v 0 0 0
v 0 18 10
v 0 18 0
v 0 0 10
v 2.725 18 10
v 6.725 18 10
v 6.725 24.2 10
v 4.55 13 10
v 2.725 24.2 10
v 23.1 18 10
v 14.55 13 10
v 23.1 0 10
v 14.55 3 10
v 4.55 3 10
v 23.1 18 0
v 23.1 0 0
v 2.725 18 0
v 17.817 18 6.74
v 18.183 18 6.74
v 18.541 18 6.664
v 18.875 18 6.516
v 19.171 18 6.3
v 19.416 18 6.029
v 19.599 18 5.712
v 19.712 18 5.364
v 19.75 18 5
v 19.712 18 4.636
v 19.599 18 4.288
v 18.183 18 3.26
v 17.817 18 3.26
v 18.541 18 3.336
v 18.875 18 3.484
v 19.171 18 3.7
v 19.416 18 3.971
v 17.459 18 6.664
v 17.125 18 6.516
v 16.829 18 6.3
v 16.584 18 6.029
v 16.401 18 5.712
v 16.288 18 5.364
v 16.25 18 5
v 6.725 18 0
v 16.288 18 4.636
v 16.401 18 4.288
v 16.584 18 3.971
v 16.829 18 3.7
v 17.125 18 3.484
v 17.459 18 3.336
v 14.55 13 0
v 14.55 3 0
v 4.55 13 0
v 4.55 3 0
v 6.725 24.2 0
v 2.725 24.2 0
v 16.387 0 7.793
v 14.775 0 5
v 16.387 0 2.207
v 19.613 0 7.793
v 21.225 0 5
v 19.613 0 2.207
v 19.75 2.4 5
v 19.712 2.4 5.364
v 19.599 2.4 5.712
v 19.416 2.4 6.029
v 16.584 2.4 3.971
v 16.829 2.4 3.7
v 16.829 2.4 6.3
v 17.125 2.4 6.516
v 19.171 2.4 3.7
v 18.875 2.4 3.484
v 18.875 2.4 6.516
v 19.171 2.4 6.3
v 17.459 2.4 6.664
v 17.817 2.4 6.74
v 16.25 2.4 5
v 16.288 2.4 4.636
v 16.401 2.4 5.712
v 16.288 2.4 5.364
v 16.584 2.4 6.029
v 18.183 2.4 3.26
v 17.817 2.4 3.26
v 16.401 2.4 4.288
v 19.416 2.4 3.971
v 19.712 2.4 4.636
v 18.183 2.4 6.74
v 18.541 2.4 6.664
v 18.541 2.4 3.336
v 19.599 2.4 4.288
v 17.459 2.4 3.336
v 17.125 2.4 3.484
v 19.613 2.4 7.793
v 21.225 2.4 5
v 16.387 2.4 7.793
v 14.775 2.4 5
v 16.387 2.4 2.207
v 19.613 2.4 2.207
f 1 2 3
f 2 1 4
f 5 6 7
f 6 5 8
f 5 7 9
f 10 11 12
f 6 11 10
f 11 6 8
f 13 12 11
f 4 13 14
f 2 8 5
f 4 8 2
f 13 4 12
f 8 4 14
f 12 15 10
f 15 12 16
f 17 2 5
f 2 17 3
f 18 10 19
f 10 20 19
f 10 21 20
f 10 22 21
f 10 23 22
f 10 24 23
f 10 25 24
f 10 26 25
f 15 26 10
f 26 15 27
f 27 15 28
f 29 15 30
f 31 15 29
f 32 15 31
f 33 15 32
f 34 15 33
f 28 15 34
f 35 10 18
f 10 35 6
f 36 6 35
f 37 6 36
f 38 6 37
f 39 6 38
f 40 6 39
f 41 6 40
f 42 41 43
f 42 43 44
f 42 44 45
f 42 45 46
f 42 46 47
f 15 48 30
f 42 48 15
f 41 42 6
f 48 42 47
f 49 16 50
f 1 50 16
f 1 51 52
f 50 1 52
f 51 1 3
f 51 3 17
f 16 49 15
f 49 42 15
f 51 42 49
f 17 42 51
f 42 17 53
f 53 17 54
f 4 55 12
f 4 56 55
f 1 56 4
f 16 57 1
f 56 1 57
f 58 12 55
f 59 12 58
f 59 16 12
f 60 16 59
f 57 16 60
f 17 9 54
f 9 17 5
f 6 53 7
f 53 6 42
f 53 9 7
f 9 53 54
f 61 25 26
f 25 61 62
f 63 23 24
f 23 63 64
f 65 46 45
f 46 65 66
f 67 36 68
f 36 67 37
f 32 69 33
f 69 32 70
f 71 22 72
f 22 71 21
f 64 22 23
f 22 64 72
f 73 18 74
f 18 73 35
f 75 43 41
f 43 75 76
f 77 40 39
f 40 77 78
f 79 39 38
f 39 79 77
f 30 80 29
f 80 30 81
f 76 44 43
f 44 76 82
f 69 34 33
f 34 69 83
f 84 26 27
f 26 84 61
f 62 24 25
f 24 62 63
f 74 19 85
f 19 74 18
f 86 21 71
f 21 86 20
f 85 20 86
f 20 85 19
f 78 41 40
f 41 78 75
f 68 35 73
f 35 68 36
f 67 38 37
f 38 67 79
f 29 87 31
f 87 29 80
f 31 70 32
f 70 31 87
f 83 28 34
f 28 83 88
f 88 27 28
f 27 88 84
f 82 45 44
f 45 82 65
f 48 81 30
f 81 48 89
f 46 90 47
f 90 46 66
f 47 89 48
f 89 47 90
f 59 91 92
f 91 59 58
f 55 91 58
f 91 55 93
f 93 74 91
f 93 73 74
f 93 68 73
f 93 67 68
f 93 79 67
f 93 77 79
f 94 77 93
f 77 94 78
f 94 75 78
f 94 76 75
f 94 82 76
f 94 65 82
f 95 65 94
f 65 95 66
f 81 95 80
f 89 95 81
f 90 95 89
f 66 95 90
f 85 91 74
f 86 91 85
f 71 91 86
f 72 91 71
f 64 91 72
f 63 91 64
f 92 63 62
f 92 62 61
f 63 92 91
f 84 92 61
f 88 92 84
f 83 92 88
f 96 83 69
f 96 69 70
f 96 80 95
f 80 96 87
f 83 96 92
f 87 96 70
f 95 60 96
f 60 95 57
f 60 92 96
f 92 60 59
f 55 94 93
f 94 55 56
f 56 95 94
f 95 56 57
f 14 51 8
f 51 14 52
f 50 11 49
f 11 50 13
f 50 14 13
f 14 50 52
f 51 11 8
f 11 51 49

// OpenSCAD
// Project: BigBox v2
// Part:    y_axis_cable_conduit (x3)
// Author:  Grigori Palamartšuk <grigori.palamarchuk@gmail.com>
// Source:  http://bigbox.lecktor.ee

// plywood thickness
$pl = 6.2;

module body()
{
    cube([23.10,18,10]);
    translate([2.725,18,0]) cube([4,$pl,10]);
}

module holes()
{
    // screw hole (attachment to frame)
    translate([18,18,5])
        rotate([90,0,0])
            cylinder(h=18,r=1.75,$fn=30);
    
    // m3 nut trap (din934)
    translate([18,2.4,5])
        rotate([90,0,0]) cylinder(r=2.75/cos(30)+0.05,h=2.4,$fn=6);
    
    // hole for cables
    translate([4.55,3,0]) cube([10,10,10]);
}

difference()
{
    body();
    holes();
}
